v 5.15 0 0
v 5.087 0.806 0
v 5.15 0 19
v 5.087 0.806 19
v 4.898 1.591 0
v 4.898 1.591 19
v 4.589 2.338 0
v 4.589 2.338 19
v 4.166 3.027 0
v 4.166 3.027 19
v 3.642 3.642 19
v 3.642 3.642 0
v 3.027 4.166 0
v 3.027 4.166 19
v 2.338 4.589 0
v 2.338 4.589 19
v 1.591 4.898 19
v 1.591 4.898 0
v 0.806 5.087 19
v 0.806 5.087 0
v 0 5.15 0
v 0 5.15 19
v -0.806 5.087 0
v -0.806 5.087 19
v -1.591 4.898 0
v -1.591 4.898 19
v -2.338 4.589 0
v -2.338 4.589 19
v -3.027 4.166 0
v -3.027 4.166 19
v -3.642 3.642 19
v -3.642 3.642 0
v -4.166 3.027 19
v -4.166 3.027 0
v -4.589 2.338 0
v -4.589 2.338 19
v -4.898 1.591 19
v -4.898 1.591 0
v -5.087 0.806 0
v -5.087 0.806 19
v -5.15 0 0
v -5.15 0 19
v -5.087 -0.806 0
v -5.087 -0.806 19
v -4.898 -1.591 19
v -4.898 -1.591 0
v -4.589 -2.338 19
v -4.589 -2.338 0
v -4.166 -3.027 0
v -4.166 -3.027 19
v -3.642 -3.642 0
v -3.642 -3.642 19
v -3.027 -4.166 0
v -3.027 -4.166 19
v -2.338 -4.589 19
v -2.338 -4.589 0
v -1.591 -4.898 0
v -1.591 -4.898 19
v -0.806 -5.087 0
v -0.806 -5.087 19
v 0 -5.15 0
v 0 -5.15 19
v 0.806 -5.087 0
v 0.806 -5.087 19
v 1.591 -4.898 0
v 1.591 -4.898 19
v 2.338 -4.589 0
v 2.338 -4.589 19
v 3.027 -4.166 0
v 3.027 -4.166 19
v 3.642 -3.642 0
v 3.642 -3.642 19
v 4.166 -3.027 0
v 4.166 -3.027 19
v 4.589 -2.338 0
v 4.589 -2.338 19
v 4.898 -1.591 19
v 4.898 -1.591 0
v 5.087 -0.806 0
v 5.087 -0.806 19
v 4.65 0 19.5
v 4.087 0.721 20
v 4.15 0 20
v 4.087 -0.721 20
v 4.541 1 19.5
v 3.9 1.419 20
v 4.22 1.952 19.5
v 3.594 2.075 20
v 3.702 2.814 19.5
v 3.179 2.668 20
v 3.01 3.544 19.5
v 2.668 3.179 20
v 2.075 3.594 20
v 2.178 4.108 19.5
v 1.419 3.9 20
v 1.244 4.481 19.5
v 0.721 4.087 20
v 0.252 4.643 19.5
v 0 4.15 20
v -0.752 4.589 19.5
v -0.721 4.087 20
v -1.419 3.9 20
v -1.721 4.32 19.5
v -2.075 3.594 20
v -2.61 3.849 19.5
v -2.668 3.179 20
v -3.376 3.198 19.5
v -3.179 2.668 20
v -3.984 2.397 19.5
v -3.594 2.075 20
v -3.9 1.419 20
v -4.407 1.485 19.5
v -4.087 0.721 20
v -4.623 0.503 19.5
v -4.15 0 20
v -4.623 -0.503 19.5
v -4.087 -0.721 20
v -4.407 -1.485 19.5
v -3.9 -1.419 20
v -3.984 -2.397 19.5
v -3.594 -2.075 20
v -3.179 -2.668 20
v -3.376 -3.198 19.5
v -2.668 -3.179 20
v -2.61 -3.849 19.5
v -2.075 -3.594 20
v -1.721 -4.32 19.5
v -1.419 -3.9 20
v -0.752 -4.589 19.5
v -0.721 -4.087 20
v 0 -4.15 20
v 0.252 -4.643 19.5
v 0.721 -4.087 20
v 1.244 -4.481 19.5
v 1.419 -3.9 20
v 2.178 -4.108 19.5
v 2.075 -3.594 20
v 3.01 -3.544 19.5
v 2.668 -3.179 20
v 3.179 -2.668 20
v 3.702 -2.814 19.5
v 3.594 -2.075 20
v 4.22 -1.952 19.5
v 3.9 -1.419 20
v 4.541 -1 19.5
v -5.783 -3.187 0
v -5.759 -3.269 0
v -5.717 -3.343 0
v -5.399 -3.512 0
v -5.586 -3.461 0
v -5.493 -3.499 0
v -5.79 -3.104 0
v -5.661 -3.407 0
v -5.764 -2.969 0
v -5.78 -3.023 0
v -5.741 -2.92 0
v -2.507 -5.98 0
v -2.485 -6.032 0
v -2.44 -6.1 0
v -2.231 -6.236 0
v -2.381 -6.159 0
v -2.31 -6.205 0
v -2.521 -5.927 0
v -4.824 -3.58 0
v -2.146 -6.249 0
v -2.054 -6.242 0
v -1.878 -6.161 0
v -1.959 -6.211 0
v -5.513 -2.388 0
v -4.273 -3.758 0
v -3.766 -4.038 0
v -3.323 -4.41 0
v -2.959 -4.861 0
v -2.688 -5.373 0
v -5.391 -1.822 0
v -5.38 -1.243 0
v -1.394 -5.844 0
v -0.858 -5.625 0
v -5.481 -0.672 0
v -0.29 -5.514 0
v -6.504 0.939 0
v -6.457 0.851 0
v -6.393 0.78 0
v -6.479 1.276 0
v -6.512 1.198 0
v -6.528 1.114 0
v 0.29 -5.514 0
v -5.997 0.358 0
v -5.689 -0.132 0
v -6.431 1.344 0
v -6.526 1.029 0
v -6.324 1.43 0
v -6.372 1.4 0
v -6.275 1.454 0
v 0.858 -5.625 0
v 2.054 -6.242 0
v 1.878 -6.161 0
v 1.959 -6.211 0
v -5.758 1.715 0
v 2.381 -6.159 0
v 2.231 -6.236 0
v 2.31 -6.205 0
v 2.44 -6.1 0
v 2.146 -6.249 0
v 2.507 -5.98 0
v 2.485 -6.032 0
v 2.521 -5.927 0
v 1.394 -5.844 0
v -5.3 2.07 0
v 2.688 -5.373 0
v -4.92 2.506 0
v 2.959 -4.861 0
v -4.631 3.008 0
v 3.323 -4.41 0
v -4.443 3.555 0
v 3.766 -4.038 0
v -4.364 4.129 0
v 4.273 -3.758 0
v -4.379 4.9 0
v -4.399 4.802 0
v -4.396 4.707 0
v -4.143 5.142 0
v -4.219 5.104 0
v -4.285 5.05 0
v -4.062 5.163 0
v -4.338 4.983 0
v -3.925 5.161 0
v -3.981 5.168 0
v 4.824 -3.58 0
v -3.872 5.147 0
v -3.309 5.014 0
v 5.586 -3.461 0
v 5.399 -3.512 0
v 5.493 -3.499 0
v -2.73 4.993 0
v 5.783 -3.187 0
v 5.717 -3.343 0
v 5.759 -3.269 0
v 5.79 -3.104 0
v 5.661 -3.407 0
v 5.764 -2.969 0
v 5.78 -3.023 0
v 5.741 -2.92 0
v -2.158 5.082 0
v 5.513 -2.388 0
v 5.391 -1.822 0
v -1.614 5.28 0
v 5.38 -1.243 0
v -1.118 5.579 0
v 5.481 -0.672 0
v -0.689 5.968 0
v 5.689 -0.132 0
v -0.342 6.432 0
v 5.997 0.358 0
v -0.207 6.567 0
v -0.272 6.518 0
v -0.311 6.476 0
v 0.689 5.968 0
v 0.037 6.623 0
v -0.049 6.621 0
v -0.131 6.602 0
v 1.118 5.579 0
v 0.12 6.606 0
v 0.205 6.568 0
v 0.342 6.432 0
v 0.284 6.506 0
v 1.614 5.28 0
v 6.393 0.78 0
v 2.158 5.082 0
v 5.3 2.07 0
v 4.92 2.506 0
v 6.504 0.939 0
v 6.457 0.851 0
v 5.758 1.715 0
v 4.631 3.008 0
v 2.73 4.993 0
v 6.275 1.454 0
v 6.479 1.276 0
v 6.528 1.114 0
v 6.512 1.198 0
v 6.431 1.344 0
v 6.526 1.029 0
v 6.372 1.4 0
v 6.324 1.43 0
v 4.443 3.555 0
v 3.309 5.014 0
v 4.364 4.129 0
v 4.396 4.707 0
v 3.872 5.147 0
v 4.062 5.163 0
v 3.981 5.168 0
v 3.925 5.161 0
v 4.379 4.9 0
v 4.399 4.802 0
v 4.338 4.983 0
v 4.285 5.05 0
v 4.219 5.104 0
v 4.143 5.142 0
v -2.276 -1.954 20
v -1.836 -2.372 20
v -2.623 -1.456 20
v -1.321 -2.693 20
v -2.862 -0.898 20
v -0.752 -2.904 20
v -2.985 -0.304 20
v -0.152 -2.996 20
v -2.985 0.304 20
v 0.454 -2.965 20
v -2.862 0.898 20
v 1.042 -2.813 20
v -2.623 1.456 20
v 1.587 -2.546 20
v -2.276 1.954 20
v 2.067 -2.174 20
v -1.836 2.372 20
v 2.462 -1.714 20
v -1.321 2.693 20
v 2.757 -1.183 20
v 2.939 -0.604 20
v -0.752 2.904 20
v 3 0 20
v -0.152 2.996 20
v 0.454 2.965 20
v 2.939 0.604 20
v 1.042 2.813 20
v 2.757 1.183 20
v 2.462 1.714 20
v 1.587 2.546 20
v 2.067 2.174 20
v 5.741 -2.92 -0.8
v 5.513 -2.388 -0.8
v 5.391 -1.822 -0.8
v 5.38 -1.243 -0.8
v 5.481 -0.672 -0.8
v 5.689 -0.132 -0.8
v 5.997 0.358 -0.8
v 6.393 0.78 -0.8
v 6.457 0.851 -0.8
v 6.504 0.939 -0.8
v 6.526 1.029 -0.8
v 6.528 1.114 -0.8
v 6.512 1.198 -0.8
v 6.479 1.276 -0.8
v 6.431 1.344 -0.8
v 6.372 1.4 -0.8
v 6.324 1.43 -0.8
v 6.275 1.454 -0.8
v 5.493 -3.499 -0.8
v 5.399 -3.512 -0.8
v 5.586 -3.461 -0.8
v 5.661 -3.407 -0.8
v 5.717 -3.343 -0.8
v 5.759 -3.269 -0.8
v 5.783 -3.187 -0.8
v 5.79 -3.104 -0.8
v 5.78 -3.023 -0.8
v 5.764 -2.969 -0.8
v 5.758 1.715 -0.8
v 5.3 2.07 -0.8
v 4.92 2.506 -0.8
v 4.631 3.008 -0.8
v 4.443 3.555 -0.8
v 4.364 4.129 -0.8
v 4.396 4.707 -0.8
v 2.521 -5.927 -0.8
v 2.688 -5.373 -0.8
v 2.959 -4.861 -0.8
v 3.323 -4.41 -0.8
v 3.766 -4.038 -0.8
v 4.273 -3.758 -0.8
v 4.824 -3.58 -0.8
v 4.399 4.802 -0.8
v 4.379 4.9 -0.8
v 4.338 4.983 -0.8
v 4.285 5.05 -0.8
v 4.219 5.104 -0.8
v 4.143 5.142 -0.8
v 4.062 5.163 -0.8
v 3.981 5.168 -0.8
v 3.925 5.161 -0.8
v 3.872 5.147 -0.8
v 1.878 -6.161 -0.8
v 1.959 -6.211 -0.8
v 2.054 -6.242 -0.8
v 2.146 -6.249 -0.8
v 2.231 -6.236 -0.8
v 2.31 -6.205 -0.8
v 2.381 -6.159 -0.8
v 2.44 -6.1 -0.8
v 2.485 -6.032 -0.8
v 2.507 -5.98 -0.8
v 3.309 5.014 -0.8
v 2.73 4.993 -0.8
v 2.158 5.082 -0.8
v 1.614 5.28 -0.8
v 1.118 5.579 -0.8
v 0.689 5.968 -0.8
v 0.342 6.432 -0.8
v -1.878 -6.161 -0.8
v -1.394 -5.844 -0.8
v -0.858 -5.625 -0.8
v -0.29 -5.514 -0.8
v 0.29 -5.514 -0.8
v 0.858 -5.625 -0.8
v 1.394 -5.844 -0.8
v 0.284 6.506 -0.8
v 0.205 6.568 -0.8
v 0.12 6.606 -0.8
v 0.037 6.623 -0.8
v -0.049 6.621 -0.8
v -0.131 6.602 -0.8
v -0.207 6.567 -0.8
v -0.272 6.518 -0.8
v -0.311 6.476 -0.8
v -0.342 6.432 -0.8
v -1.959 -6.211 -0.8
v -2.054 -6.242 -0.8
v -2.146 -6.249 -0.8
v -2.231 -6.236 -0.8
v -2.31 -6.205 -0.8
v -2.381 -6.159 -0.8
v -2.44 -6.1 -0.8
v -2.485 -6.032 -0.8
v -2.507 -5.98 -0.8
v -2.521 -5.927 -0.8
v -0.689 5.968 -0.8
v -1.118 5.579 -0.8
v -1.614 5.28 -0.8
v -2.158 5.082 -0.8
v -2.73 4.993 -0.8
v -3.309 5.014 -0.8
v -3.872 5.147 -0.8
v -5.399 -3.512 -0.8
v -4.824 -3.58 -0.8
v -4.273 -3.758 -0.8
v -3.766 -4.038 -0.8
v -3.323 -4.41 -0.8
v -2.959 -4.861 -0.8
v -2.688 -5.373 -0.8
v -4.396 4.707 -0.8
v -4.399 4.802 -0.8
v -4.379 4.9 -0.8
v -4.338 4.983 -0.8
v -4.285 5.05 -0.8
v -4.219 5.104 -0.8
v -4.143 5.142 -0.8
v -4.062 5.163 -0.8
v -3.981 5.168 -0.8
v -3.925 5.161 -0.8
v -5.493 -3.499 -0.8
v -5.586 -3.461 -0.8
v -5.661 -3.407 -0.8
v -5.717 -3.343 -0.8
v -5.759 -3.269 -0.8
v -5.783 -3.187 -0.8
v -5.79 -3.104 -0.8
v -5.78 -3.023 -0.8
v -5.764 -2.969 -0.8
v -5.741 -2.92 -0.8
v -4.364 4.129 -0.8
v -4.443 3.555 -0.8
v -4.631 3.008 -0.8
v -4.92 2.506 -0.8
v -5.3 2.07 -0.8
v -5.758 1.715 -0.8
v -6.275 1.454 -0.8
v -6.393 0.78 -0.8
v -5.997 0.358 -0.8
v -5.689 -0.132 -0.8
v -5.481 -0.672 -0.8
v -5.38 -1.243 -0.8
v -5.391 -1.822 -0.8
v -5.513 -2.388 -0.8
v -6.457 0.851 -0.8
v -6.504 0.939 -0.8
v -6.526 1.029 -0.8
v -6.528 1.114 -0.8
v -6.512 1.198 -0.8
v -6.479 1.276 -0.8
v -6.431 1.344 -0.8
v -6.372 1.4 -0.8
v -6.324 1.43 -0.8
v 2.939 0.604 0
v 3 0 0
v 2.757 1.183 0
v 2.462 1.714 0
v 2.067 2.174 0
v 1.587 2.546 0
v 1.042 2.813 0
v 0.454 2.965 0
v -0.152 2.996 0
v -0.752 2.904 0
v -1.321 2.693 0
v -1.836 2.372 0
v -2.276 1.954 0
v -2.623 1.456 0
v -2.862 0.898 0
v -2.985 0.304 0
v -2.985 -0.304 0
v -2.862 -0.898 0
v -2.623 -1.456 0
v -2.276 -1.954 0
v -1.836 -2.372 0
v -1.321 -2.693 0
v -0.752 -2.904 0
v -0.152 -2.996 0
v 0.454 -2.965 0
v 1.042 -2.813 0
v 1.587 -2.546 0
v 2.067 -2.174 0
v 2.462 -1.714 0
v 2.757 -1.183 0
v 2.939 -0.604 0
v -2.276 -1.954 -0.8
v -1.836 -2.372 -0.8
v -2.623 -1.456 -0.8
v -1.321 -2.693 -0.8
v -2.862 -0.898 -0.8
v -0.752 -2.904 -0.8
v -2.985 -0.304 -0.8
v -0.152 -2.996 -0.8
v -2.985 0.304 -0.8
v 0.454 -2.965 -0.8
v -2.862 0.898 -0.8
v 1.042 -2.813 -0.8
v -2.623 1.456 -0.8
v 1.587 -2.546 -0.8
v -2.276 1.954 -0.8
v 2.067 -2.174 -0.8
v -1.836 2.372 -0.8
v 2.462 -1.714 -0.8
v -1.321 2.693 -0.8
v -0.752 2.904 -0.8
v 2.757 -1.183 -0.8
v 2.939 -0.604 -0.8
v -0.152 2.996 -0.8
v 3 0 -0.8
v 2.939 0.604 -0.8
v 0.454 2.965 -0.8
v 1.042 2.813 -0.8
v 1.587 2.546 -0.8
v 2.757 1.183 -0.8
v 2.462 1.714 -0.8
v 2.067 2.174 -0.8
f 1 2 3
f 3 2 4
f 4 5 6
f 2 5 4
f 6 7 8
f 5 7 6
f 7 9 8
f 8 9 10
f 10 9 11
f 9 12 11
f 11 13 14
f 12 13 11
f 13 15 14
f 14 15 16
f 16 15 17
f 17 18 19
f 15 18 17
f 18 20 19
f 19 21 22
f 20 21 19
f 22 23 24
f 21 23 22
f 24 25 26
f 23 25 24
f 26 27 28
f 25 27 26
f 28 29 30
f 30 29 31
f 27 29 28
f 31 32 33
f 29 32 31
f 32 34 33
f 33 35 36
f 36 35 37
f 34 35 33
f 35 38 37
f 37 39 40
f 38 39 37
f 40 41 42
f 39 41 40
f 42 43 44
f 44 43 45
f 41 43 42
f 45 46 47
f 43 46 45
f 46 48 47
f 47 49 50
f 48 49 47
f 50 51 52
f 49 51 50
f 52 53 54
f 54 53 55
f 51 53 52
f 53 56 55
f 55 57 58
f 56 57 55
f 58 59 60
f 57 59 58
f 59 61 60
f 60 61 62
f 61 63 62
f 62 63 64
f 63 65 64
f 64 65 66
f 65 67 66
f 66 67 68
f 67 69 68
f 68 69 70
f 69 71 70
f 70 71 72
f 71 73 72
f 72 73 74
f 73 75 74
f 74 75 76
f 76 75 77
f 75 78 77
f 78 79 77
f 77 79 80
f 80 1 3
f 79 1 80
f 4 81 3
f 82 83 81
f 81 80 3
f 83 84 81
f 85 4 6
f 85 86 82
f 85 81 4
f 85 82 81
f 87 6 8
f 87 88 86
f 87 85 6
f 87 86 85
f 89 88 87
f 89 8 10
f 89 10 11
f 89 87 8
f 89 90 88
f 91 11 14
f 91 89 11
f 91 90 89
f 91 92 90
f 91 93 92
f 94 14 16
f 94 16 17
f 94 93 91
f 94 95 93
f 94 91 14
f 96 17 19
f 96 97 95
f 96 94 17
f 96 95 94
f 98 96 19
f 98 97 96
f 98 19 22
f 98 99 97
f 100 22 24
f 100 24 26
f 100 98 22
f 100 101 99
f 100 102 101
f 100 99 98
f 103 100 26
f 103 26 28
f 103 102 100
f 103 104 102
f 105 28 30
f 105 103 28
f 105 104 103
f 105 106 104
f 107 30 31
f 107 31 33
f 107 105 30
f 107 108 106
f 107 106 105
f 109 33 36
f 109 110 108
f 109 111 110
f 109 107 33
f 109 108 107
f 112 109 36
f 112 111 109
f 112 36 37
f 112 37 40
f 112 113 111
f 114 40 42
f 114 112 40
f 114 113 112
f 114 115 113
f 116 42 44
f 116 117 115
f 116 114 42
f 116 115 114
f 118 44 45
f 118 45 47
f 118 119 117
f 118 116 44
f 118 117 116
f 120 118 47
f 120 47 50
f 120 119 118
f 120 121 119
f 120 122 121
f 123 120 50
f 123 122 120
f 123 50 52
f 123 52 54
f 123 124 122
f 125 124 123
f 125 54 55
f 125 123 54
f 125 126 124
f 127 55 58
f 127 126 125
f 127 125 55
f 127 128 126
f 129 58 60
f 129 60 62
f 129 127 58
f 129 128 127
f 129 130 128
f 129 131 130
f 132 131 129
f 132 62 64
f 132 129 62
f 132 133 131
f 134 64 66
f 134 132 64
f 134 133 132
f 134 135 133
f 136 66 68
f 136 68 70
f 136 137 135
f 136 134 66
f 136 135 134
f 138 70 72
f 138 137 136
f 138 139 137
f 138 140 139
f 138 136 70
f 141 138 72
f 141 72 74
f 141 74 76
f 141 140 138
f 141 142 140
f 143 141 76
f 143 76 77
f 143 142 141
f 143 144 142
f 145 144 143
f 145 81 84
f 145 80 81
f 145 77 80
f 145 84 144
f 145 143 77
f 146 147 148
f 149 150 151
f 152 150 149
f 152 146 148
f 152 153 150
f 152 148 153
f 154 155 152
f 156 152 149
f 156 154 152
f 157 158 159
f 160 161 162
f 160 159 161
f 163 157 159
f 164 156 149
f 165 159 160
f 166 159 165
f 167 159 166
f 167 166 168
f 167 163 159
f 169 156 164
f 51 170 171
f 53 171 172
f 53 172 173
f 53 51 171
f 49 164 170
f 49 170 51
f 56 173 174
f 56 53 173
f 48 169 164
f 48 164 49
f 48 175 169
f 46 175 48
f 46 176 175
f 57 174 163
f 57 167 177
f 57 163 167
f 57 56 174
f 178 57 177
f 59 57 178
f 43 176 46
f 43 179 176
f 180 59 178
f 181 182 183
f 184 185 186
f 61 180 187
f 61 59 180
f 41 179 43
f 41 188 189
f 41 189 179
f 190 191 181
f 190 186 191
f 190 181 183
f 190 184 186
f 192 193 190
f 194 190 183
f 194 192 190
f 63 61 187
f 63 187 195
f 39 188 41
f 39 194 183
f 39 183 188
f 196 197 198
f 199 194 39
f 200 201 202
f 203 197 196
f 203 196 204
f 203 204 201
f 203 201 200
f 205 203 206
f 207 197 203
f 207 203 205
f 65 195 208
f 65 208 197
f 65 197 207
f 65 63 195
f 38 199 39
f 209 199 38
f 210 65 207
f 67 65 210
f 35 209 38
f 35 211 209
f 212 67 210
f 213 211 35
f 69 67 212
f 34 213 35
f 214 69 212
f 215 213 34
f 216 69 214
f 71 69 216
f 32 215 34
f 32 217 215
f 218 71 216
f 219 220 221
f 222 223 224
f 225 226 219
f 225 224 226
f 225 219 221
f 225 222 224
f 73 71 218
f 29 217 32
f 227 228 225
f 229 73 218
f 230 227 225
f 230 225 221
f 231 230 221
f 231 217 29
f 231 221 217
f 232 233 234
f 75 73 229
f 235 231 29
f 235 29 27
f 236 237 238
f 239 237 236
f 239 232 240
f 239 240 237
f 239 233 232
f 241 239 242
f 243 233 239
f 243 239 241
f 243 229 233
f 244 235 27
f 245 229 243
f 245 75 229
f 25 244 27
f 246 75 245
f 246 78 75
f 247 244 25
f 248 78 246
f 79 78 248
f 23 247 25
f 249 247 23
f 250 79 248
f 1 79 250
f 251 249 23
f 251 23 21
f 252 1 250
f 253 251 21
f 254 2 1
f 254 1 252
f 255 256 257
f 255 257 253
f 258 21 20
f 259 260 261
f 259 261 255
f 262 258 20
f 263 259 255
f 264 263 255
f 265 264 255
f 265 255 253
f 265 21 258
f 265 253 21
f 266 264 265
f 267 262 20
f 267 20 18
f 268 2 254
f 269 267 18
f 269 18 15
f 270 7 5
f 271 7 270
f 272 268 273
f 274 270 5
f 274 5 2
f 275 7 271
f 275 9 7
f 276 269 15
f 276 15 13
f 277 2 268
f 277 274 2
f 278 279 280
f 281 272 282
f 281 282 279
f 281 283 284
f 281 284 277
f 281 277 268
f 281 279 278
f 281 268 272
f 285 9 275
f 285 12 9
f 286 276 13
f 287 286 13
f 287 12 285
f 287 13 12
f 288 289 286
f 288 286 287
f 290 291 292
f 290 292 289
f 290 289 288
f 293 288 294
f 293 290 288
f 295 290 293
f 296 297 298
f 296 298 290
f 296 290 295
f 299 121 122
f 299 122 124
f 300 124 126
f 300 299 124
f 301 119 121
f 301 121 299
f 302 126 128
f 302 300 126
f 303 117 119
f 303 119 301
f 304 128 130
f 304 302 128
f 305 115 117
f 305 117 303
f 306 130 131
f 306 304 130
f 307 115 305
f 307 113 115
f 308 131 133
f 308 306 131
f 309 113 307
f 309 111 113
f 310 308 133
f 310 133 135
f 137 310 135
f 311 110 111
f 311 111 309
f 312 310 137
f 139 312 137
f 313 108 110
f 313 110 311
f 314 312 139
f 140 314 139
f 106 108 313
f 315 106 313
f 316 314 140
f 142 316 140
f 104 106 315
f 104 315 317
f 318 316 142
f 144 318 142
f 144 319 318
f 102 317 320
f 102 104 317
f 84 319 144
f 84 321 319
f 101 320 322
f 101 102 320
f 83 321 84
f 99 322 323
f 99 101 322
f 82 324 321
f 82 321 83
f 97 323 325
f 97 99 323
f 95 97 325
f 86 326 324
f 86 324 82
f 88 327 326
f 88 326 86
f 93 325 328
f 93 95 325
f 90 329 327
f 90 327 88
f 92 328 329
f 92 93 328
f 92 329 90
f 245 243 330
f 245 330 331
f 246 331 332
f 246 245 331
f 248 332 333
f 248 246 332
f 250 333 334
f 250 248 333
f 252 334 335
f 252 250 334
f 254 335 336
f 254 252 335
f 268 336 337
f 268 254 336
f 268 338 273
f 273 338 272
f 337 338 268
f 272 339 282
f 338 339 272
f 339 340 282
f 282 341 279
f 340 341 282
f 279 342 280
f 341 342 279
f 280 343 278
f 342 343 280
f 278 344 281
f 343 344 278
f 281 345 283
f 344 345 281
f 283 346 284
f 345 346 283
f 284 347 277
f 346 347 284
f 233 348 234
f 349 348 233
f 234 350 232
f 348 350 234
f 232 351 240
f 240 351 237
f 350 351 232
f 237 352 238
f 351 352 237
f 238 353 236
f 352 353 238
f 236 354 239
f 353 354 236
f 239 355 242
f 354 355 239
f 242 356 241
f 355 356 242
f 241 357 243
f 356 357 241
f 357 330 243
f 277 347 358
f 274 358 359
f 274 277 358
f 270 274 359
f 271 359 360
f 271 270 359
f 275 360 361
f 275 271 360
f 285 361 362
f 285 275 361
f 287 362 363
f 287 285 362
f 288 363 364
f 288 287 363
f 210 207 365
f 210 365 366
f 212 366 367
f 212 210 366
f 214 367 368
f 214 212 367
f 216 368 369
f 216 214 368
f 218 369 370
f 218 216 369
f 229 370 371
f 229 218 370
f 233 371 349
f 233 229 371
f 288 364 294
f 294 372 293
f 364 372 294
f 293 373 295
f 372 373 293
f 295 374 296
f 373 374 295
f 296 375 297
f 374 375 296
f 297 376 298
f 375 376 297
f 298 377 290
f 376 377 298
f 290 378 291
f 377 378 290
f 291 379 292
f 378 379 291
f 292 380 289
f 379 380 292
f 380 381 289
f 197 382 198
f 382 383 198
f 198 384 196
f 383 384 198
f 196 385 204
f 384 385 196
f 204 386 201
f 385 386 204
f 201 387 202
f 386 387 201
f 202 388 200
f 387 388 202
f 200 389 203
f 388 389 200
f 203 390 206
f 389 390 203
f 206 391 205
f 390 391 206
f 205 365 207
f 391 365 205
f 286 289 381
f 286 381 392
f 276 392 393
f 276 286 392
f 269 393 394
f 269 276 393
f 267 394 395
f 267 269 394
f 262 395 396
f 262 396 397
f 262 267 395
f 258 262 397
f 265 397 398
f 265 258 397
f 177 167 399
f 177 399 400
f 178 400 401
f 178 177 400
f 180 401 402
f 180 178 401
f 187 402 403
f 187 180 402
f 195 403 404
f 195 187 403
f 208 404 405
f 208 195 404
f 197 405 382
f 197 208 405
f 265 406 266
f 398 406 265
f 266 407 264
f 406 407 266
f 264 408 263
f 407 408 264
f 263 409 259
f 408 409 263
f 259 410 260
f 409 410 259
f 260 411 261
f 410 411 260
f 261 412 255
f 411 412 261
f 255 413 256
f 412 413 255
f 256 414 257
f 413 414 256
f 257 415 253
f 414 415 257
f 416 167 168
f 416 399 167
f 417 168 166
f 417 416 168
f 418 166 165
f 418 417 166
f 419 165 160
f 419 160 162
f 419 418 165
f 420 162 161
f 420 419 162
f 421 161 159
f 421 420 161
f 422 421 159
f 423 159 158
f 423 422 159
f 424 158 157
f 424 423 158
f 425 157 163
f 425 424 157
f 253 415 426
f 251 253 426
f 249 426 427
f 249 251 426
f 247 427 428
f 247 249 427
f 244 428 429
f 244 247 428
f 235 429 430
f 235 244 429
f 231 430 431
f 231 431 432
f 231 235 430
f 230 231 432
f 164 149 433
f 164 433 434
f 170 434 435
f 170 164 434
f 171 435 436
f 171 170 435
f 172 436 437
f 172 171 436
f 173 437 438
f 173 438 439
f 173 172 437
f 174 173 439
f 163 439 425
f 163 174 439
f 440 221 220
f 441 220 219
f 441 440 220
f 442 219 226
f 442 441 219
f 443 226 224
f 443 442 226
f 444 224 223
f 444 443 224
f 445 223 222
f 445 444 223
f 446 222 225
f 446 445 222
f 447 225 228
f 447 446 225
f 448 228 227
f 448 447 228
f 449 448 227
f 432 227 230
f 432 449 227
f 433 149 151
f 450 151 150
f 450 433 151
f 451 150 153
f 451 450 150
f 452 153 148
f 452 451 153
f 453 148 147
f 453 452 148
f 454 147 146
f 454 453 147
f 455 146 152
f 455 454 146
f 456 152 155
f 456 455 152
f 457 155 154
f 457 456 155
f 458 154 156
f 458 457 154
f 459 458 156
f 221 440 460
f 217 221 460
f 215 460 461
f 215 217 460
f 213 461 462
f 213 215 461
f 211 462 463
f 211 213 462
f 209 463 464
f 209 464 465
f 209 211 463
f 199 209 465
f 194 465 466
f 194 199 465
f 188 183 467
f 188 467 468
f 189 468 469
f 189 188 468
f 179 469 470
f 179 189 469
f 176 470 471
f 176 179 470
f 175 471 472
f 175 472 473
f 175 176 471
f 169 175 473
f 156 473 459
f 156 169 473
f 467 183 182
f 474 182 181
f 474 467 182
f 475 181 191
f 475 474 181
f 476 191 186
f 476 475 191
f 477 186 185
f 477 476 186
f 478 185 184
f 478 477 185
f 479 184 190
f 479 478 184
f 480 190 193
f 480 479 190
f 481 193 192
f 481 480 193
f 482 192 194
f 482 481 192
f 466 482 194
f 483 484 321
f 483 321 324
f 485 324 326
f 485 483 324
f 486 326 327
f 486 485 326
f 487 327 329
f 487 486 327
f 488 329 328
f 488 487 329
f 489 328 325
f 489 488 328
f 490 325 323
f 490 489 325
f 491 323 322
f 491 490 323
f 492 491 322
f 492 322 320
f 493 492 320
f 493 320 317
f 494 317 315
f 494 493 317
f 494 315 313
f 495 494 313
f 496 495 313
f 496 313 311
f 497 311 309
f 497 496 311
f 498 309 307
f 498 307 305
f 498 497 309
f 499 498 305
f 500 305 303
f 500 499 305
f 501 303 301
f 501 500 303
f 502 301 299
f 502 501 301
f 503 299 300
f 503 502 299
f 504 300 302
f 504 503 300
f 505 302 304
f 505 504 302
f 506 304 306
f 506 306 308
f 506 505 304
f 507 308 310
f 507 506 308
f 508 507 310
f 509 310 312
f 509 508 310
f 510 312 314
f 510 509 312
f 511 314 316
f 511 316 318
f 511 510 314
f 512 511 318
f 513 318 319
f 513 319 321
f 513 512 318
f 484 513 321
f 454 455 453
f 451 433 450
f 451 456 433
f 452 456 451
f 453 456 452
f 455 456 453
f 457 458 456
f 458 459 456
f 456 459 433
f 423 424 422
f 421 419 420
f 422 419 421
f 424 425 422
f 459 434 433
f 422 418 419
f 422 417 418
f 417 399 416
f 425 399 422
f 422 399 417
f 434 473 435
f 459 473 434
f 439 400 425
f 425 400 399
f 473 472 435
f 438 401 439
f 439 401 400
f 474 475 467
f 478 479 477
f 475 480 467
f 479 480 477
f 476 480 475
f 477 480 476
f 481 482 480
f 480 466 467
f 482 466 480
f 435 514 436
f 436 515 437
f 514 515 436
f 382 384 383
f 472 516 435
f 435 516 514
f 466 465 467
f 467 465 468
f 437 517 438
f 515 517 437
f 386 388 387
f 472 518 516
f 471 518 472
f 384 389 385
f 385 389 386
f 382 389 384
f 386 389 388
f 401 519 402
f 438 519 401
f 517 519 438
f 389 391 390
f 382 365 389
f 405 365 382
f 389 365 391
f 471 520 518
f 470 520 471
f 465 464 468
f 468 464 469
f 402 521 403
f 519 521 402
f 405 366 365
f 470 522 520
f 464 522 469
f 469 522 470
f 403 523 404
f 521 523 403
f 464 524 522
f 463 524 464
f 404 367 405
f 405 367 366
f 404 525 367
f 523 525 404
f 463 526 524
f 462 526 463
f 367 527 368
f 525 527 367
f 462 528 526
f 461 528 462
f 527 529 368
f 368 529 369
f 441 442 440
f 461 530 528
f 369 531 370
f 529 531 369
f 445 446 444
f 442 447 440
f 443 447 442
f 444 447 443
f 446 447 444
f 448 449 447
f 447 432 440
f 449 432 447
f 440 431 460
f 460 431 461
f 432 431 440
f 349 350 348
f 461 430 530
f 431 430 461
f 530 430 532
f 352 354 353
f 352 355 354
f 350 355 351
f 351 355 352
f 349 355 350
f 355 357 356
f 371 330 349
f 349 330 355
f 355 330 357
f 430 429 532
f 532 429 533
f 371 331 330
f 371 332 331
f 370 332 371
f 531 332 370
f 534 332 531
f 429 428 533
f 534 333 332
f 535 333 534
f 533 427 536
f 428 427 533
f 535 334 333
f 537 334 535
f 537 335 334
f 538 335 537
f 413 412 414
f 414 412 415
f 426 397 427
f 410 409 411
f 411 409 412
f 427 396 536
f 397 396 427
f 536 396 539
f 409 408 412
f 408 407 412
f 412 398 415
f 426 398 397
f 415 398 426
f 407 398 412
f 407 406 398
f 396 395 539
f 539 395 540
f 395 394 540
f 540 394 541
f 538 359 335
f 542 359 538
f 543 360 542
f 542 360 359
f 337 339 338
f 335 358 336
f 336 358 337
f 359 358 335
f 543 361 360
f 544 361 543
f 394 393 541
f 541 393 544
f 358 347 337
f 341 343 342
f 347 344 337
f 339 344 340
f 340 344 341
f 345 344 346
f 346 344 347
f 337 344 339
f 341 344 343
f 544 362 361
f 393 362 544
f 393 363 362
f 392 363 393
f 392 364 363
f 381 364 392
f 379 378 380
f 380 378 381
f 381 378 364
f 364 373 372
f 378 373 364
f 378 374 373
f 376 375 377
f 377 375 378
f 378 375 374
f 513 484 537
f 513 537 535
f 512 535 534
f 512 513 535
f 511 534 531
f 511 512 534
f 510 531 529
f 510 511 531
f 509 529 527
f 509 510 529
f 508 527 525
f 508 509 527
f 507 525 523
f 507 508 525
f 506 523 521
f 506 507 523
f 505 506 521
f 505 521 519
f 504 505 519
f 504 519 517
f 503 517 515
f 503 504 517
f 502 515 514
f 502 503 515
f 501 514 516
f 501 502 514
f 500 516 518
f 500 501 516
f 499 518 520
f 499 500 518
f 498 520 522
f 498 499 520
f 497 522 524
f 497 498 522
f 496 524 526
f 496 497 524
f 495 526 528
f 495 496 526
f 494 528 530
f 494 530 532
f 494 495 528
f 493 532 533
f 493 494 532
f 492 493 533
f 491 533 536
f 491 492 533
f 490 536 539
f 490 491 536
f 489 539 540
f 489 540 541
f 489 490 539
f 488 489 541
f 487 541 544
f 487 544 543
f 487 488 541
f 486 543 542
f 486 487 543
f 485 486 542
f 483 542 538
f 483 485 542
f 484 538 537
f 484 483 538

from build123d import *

# Parameters (mm, degrees)
SKETCH_R     = 5.15
SKETCH_R_2   = 3
PAD_DEPTH    = 20
SKETCH001_R  = 3
PAD001_DEPTH = 0.8
FILLET_R     = 0.4
FILLET001_R  = 0.4
FILLET002_R  = 0.4
CHAMFER_SIZE = 1


with BuildPart() as part:
    # Sketch → Pad (new body)
    with BuildSketch(Plane.XY):
        Circle(SKETCH_R)
        Circle(SKETCH_R_2, mode=Mode.SUBTRACT)
    extrude(amount=PAD_DEPTH)

    # Sketch001 (on Face3 of Pad) → Pad001 (join)
    with BuildSketch(Plane(origin=(0, 0, 0), x_dir=(1, 0, 0), z_dir=(0, 0, -1))):
        with BuildLine():
            ThreePointArc((2.478578, 6.809837), (3.535332, 4.213244), (6.27598, 3.623438))
            ThreePointArc((6.27598, 3.623438), (5.416443, 0.955065), (7.136781, -1.258407))
            ThreePointArc((7.136781, -1.258407), (4.76314, -2.75), (4.658203, -5.55143))
            ThreePointArc((4.658203, -5.55143), (1.881111, -5.168309), (0, -7.246877))
            ThreePointArc((0, -7.246877), (-1.881111, -5.168309), (-4.658203, -5.55143))
            ThreePointArc((-4.658203, -5.55143), (-4.76314, -2.75), (-7.136781, -1.258407))
            ThreePointArc((-7.136781, -1.258407), (-5.416443, 0.955065), (-6.27598, 3.623438))
            ThreePointArc((-6.27598, 3.623438), (-3.535332, 4.213244), (-2.478578, 6.809837))
            ThreePointArc((-2.478578, 6.809837), (0, 5.5), (2.478578, 6.809837))
        make_face()
        Circle(SKETCH001_R, mode=Mode.SUBTRACT)
    extrude(amount=PAD001_DEPTH)

    # Fillet
    fillet_edges = [part.edges().sort_by_distance(p)[0] for p in [
        (-2.478578, -6.809837, -0.4),
    ]]
    fillet(fillet_edges, radius=FILLET_R)

    # Fillet001
    fillet001_edges = [part.edges().sort_by_distance(p)[0] for p in [
        (2.478578, -6.809837, -0.4),
        (6.27598, -3.623438, -0.4),
        (-6.27598, -3.623438, -0.4),
        (-7.136781, 1.258407, -0.4),
        (-4.658203, 5.55143, -0.4),
        (0, 7.246877, -0.4),
    ]]
    fillet(fillet001_edges, radius=FILLET001_R)

    # Fillet002
    fillet002_edges = [part.edges().sort_by_distance(p)[0] for p in [
        (4.658203, 5.55143, -0.4),
        (7.136781, 1.258407, -0.4),
    ]]
    fillet(fillet002_edges, radius=FILLET002_R)

    # Chamfer
    chamfer_edges = [part.edges().sort_by_distance(p)[0] for p in [
        (-5.15, 0, 20),
    ]]
    chamfer(chamfer_edges, length=CHAMFER_SIZE)


solid = part.part
